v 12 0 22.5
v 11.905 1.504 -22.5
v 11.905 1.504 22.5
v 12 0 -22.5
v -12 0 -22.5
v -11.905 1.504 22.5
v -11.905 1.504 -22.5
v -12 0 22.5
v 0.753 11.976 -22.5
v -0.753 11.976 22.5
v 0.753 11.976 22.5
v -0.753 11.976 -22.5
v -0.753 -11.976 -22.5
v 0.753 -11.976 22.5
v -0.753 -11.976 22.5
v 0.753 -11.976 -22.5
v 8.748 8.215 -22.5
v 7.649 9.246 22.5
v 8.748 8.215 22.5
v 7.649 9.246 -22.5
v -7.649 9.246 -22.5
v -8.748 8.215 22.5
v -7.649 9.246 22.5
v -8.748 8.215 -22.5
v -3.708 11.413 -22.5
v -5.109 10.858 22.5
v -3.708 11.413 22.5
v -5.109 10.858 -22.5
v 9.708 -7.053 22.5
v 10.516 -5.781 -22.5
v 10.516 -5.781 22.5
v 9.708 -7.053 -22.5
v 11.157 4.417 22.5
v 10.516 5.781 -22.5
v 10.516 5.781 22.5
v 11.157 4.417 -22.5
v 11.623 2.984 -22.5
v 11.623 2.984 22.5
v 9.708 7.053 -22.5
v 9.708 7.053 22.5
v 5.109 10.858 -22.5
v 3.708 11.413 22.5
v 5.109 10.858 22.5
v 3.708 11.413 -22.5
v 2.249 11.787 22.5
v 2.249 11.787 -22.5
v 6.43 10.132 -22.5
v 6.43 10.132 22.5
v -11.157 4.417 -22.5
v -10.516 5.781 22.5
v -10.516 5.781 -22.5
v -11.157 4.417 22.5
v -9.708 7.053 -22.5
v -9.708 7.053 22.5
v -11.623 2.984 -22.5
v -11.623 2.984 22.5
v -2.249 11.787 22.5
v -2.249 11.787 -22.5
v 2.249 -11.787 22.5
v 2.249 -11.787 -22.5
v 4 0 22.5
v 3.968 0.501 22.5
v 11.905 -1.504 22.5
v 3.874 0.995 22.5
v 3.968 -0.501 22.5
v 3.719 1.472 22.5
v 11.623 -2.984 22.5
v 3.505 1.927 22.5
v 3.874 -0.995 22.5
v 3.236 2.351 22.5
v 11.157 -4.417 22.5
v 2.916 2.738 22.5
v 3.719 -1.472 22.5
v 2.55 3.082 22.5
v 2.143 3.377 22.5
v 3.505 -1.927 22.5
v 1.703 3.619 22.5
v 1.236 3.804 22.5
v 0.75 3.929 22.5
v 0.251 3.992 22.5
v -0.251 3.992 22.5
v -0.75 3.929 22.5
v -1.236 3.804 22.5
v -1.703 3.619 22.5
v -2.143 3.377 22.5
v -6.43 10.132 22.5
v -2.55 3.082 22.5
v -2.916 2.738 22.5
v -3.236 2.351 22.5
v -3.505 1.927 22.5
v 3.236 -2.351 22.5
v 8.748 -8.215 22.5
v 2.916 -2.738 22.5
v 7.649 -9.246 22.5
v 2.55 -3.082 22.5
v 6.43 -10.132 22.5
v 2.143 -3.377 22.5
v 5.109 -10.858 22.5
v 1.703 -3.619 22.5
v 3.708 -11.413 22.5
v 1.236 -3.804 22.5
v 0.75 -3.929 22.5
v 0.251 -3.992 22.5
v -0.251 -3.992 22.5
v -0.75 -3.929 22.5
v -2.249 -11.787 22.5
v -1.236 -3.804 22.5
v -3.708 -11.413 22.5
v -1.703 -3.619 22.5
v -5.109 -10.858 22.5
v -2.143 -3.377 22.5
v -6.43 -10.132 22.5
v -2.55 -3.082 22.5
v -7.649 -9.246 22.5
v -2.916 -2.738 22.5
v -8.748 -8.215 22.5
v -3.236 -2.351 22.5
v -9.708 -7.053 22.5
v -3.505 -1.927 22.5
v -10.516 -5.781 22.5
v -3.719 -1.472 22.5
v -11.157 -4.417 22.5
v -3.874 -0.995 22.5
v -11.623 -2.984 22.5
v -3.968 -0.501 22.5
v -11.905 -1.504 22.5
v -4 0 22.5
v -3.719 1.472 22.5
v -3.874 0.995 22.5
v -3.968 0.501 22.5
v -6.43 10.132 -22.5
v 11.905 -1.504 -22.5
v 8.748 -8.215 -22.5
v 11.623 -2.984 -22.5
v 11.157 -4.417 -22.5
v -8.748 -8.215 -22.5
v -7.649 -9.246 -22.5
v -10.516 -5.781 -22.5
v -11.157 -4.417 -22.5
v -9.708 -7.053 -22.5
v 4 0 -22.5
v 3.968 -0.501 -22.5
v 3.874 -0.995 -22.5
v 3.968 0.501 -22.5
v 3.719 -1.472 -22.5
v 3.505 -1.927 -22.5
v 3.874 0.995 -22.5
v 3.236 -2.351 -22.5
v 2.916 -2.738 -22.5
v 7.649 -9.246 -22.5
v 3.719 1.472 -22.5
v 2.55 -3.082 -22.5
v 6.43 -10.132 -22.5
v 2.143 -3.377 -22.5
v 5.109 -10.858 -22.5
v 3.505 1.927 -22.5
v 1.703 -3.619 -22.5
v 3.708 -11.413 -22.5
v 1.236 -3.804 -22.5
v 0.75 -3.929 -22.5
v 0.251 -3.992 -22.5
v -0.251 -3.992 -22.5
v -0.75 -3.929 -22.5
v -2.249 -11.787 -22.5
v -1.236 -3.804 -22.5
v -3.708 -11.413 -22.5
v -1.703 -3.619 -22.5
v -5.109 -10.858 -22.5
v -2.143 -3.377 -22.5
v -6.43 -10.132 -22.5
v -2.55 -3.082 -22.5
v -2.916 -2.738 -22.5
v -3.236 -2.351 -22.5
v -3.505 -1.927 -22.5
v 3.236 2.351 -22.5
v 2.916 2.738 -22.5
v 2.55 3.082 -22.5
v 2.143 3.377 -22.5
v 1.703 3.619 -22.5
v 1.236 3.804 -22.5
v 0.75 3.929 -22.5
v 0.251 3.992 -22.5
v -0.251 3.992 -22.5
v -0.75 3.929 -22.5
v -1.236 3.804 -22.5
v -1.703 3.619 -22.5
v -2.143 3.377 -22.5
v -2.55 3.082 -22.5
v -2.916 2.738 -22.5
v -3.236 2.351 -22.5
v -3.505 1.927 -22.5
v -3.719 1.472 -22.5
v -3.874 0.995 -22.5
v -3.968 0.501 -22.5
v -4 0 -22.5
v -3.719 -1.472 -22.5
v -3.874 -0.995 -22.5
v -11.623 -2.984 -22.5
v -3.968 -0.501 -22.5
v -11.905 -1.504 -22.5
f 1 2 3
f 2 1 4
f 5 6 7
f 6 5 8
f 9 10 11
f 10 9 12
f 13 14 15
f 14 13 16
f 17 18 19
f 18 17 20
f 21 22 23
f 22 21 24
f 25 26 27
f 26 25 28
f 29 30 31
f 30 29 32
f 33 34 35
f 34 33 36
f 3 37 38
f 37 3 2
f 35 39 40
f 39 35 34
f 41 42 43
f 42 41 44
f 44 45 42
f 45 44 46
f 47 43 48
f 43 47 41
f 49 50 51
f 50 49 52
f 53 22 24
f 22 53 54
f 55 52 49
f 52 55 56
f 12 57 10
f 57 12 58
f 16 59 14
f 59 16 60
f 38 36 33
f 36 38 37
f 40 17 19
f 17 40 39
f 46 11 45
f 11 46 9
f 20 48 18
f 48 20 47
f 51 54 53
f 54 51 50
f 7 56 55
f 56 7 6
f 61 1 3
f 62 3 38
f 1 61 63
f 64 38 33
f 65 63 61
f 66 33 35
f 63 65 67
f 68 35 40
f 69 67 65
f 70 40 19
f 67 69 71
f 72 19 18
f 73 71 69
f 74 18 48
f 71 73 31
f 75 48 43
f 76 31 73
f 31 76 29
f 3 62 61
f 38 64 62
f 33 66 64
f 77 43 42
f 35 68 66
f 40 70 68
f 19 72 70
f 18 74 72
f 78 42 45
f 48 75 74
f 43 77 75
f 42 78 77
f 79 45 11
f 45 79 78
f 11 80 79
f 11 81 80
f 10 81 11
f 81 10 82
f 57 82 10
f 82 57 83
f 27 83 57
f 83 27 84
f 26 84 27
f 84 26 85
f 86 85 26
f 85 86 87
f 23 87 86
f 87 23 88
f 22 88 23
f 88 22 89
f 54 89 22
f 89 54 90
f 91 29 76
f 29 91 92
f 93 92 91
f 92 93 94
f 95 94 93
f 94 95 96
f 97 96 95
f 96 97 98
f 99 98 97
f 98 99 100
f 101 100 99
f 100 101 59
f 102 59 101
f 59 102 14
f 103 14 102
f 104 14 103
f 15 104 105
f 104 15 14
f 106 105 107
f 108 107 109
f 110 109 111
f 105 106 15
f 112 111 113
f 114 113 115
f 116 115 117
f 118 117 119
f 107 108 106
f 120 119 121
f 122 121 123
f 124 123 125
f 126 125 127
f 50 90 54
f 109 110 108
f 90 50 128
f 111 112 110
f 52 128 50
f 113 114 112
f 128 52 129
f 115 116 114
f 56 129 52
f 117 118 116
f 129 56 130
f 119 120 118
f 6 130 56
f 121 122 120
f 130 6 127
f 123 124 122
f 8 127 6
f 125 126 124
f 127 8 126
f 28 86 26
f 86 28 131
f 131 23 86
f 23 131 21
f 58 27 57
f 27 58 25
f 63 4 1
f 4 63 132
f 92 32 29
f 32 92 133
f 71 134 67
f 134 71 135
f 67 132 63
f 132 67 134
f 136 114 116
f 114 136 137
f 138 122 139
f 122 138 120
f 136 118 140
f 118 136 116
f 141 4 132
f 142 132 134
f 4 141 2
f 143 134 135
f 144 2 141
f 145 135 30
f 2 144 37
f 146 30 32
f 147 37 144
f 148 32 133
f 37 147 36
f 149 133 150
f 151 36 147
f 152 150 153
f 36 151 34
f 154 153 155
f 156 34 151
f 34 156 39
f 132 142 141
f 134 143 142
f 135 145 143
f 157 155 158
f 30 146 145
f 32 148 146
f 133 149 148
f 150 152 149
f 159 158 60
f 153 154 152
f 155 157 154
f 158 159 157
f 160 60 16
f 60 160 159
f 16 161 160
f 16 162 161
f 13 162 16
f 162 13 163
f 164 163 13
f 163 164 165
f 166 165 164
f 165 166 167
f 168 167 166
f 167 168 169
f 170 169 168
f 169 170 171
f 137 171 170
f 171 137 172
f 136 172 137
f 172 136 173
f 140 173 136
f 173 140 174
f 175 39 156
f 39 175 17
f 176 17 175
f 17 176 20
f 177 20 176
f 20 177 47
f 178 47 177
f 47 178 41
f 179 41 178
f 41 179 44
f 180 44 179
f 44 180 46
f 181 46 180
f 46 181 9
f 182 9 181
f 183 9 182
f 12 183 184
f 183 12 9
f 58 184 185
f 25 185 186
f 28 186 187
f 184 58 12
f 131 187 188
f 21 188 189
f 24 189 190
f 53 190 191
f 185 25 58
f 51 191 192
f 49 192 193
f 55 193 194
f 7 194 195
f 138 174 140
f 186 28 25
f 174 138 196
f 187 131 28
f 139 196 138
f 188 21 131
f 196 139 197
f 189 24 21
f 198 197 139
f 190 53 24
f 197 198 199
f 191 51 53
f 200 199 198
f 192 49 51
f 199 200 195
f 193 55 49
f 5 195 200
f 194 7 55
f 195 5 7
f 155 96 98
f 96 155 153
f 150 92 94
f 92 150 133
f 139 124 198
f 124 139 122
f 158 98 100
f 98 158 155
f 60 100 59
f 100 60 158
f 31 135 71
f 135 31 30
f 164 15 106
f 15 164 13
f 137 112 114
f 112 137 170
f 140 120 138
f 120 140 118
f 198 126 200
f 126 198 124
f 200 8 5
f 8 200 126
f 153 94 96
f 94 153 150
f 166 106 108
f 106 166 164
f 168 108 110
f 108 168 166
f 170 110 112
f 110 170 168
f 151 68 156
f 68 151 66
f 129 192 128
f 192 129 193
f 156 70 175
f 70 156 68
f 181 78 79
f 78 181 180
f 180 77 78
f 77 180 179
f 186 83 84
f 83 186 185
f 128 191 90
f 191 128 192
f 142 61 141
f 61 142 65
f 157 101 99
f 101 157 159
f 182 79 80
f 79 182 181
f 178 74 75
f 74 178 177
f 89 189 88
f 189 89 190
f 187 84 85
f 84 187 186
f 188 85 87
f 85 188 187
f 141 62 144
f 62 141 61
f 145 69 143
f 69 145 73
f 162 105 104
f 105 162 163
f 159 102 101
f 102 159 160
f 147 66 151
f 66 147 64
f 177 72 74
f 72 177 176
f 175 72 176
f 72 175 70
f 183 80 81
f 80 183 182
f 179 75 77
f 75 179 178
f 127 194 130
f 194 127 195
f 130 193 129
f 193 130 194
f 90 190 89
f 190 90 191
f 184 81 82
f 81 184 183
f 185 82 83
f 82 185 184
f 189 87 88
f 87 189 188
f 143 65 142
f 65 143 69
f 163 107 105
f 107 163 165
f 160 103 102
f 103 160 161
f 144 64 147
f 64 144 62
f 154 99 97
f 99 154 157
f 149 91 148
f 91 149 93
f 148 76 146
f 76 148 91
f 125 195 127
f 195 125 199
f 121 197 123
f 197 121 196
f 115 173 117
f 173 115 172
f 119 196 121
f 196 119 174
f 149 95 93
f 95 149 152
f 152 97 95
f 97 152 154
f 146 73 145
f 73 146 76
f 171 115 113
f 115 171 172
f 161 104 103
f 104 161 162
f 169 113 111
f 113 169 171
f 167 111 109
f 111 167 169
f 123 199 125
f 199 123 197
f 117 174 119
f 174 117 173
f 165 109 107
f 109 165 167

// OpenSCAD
$fn = 50;


difference() {
	union() {
		translate(v = [0, 0, -22.5000000000]) {
			cylinder(h = 45, r = 12.0000000000);
		}
	}
	union() {
		translate(v = [0, 0, -100.0000000000]) {
			cylinder(h = 200, r = 4);
		}
	}
}
